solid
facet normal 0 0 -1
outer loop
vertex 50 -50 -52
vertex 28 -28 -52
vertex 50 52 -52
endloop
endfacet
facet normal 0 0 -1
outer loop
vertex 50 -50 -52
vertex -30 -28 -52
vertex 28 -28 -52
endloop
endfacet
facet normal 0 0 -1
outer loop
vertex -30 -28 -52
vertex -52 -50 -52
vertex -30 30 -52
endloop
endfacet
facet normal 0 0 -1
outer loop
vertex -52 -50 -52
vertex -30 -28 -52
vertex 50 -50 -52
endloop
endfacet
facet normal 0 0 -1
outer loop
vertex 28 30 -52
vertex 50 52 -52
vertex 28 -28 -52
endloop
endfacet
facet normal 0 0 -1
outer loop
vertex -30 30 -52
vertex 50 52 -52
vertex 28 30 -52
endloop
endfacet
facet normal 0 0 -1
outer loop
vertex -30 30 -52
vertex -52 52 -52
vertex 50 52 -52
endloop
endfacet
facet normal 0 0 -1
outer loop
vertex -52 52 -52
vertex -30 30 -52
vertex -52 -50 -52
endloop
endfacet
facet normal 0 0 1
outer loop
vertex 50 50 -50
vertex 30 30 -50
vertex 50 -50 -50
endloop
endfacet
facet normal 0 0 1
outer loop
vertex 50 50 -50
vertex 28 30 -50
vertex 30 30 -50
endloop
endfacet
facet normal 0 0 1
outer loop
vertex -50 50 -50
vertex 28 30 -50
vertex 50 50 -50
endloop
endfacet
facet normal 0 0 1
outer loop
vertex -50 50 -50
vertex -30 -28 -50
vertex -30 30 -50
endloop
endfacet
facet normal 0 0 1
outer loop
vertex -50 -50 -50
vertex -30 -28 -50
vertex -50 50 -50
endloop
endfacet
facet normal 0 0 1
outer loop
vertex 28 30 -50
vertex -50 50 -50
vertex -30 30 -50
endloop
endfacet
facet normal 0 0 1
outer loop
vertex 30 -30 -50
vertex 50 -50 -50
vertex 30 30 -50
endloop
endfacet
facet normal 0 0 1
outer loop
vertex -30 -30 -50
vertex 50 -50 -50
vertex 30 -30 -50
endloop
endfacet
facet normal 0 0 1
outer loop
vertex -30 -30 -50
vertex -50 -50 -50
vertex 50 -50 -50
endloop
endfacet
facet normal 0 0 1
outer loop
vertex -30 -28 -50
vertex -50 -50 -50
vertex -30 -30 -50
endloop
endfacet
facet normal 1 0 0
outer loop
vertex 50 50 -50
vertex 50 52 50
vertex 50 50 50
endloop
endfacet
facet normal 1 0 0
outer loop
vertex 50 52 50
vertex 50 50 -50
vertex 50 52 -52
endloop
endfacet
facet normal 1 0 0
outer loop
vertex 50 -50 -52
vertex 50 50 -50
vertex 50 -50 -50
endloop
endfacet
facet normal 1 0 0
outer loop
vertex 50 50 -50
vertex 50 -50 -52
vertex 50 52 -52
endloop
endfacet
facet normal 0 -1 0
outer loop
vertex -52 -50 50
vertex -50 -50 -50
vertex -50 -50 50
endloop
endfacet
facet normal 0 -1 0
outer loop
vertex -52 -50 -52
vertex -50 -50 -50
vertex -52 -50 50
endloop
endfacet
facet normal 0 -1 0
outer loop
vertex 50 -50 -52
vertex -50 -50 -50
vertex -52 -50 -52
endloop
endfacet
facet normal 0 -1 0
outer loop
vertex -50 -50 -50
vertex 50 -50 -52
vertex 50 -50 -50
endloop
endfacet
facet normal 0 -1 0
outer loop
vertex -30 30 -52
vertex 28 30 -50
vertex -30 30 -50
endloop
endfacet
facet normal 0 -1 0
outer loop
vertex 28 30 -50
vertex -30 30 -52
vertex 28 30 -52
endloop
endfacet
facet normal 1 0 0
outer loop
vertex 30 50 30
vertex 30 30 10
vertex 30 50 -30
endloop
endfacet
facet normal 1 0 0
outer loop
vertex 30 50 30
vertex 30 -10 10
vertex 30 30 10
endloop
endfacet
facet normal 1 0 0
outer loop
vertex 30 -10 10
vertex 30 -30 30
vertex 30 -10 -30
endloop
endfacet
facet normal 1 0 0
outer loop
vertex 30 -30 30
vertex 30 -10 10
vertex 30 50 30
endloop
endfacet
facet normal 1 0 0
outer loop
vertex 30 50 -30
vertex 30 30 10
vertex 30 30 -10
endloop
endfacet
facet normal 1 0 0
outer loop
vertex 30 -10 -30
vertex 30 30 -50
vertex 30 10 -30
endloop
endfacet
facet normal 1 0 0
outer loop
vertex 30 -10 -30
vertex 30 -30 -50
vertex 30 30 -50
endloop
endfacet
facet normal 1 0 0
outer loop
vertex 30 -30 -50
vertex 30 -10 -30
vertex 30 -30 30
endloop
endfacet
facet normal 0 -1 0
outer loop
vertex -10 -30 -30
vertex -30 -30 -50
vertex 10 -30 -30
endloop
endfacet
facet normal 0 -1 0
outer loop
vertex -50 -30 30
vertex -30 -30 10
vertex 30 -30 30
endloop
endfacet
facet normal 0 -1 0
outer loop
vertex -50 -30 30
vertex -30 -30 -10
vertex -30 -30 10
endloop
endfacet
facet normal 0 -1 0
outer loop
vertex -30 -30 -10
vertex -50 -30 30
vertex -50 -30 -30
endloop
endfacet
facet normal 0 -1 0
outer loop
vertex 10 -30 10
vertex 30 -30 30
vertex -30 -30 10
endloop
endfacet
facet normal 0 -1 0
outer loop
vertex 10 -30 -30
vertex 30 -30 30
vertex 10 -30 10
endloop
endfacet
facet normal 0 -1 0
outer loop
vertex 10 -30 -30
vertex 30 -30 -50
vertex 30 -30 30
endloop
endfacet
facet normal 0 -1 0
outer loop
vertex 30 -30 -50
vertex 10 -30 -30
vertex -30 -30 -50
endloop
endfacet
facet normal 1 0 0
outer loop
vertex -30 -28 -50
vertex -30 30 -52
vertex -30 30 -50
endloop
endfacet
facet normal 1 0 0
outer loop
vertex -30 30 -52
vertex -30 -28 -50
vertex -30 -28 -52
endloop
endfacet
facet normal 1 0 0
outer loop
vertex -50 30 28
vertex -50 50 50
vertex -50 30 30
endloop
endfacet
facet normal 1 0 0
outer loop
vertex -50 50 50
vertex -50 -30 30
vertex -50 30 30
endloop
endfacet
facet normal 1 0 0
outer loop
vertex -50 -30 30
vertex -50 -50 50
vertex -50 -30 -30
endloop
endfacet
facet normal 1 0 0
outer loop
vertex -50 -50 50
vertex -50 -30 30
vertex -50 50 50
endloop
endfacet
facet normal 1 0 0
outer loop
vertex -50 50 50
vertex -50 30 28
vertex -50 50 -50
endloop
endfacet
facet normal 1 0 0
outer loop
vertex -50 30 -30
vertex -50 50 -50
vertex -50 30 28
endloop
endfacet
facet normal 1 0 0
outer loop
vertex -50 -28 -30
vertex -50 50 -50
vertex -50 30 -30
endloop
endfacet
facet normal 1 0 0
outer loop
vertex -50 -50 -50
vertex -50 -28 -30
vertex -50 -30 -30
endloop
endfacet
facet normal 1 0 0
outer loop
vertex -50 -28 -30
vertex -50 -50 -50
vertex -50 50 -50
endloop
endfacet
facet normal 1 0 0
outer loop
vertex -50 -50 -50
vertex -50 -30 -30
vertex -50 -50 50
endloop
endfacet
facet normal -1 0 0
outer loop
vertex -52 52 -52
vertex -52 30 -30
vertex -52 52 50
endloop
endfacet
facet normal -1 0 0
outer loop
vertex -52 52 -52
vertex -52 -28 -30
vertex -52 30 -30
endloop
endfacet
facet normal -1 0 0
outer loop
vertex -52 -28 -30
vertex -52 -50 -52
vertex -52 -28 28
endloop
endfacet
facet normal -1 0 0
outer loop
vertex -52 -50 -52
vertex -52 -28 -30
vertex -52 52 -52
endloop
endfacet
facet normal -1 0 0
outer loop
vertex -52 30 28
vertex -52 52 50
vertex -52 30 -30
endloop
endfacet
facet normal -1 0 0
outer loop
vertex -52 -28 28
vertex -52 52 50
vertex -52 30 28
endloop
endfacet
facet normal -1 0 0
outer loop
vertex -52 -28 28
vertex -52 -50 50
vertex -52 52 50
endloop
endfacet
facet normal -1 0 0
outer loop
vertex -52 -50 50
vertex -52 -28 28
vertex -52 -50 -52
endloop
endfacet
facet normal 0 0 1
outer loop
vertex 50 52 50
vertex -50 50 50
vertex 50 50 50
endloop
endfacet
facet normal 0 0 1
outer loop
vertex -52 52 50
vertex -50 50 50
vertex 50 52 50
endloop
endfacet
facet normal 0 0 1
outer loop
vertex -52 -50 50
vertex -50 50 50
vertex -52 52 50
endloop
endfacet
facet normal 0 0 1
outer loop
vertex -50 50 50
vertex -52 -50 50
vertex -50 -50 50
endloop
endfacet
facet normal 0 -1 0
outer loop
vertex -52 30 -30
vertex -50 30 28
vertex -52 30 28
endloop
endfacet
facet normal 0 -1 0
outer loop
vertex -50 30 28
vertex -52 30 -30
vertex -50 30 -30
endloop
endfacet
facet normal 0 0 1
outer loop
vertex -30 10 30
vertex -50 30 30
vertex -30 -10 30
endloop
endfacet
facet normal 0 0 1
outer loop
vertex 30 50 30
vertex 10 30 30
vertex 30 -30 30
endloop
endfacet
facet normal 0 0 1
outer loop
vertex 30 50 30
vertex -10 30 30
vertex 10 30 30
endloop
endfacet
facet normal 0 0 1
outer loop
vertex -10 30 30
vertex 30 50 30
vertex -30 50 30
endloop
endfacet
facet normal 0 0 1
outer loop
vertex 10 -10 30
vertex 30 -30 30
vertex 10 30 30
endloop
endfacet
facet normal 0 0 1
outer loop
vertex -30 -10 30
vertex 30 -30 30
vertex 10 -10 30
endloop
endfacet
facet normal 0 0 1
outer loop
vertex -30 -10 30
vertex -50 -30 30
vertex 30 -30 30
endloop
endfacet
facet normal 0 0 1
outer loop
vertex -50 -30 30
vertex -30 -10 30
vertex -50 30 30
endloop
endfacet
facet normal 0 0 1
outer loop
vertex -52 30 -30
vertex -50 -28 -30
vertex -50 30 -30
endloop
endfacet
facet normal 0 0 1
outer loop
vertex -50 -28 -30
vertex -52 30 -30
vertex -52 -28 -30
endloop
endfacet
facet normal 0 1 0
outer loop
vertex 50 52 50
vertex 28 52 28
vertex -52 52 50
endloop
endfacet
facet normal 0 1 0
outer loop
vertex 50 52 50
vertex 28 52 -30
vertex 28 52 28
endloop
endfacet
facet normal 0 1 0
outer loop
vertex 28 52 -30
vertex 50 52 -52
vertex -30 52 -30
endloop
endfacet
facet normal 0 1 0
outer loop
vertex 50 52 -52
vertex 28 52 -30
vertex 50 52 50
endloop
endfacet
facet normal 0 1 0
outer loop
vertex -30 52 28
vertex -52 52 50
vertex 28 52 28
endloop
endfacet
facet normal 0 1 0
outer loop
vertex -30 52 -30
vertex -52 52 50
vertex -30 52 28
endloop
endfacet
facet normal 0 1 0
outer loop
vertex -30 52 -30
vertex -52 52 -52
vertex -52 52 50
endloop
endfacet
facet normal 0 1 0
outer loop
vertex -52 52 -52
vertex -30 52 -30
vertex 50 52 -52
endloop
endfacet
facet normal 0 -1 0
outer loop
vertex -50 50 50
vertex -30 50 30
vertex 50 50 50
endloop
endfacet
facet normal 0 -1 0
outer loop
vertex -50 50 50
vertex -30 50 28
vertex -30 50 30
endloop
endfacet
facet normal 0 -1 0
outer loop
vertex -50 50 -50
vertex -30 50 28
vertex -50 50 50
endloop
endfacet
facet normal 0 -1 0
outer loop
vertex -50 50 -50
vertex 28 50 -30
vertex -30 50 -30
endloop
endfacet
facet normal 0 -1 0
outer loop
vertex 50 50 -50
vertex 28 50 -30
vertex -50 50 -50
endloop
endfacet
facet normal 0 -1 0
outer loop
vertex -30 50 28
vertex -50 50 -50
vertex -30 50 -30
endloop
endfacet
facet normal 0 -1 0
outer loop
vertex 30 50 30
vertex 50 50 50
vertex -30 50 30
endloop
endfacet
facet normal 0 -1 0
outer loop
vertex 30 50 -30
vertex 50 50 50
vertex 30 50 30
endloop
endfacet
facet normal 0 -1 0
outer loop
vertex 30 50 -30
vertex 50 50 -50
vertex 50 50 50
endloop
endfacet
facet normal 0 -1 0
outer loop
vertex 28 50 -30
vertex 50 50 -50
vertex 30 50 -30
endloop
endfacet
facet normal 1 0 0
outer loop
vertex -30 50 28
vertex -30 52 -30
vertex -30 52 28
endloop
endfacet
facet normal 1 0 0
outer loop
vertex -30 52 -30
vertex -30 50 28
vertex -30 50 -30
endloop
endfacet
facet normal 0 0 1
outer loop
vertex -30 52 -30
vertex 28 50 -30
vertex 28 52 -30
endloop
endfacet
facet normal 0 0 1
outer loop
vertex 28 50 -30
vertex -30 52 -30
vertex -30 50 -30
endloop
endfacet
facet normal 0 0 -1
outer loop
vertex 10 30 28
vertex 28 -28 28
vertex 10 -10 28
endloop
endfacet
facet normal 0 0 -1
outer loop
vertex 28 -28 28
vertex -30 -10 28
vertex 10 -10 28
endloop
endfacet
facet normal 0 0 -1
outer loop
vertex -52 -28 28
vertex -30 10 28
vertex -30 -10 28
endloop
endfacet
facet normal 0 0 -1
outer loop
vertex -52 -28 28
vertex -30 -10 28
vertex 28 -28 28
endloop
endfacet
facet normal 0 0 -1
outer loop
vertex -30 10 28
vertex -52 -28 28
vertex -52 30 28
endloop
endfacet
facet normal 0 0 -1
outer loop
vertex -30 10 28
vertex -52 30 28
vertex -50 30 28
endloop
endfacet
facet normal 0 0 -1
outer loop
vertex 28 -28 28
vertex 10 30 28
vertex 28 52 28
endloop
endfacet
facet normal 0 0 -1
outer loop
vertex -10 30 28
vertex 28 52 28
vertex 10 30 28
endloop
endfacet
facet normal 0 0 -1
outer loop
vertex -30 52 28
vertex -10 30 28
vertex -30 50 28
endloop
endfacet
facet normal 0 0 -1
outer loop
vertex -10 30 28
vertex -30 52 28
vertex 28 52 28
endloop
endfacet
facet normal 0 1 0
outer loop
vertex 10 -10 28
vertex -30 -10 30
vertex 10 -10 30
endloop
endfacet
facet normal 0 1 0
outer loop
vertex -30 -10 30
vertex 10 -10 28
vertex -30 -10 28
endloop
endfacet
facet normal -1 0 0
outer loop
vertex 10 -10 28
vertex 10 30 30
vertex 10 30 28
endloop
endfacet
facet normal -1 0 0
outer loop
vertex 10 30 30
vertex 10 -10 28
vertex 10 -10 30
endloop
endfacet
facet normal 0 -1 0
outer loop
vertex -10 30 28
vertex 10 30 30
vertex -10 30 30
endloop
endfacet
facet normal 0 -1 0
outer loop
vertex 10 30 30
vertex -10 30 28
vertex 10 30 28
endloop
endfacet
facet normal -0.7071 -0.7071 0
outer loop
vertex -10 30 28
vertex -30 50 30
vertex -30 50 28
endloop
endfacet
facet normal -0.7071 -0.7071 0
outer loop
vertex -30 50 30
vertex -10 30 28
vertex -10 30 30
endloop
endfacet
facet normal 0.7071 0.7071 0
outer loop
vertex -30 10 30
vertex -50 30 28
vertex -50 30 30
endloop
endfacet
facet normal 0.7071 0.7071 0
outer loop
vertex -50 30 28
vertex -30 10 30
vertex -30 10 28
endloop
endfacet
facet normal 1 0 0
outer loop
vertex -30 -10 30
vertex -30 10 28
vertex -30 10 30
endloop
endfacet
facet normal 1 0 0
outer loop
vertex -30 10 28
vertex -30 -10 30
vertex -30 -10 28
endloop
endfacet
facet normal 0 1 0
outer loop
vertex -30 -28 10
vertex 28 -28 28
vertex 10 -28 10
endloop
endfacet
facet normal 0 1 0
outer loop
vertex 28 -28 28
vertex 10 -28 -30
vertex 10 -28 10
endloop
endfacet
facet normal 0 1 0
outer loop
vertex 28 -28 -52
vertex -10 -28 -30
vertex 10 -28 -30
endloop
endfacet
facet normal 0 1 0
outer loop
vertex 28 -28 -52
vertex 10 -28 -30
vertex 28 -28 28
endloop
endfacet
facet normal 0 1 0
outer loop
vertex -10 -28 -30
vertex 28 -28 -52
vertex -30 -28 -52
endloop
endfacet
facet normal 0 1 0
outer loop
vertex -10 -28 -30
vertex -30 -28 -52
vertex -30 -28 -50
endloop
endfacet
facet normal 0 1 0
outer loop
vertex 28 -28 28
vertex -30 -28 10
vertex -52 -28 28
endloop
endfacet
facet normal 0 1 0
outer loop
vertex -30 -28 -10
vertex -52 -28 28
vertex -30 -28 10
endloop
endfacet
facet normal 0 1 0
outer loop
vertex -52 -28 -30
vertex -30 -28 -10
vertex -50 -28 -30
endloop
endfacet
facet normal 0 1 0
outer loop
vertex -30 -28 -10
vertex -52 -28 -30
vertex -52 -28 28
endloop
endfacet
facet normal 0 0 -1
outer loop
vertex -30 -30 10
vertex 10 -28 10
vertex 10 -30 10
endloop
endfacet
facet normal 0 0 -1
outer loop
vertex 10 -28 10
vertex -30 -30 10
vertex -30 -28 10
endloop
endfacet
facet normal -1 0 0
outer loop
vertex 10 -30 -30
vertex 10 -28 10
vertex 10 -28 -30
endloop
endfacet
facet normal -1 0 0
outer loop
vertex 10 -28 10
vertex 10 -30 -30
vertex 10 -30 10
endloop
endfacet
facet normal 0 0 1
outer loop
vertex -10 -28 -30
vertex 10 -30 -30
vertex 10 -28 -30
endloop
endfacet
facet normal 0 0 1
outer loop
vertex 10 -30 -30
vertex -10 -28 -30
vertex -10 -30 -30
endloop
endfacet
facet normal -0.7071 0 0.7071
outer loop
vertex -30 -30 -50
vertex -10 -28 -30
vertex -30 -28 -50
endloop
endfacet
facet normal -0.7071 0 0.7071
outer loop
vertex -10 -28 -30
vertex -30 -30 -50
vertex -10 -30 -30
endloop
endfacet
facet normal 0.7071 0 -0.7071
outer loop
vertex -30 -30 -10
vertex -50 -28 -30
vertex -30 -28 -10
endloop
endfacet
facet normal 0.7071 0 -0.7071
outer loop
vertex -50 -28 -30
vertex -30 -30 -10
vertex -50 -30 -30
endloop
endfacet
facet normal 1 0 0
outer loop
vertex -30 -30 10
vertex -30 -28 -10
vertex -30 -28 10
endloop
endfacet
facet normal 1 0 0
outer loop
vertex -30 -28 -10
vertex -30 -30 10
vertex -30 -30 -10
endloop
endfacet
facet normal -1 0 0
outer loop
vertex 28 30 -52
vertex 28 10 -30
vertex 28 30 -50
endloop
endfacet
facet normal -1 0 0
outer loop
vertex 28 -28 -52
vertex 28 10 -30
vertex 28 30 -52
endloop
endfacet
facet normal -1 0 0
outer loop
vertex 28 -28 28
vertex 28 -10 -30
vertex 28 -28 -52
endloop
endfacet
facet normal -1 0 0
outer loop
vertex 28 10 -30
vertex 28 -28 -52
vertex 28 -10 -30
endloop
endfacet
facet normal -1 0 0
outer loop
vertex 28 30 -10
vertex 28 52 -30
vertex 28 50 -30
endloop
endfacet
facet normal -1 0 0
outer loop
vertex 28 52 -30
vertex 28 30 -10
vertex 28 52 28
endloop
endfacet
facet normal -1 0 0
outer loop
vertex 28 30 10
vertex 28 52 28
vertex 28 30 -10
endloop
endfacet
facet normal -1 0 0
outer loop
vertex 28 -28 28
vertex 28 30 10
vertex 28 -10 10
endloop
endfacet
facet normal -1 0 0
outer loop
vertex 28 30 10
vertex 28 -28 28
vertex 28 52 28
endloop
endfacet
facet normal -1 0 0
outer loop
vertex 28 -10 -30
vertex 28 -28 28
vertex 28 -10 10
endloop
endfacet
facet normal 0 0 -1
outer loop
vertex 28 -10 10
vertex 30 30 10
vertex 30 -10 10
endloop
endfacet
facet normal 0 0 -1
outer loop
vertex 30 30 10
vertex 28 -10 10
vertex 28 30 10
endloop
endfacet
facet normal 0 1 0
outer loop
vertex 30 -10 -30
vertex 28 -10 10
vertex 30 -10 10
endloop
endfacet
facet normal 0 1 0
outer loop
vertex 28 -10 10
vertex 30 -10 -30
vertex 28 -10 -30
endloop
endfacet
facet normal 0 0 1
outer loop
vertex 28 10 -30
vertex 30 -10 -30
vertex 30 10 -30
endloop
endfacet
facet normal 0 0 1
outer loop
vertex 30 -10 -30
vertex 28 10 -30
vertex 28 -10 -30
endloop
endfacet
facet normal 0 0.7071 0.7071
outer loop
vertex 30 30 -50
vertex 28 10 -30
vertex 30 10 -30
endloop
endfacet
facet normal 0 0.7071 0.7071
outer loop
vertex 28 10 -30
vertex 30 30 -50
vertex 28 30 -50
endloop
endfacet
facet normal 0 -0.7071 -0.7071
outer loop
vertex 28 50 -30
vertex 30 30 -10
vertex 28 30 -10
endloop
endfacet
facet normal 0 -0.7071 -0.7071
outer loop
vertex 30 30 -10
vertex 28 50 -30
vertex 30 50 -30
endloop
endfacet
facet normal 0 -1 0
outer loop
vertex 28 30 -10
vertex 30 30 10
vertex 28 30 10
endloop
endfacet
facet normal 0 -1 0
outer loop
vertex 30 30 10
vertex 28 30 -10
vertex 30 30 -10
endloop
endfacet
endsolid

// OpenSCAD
edgeLen=100;
beamWdth=20;
wallThck=2;

//inEdgeLen=edgeLen-beamWdth*2;

$vpr=[55,0,45];
//big cube
SQCube(edgeLen,beamWdth);

//this could have been better, but it's late and I'm tired
translate([-(edgeLen+wallThck)/2,(edgeLen+wallThck)/2,-(edgeLen+wallThck)/2]) 
  for (ir=[[0,0,0],[0,-90,0],[0,0,-90]])
    rotate(ir) translate([edgeLen/2,0,0]) cube([edgeLen+wallThck,wallThck,wallThck],true);

  
//small cube
translate([-(beamWdth)/2,beamWdth/2,-beamWdth/2]) 
  rotate([180,0,90]) SQCube(edgeLen-beamWdth,beamWdth,true);


module SQCube(size=100,beamWdth=25,open=false){
  inSize=size-beamWdth*2;
  wallOffset= open ? wallThck : -wallThck;
  translate([0,0,-(size-wallOffset)/2]) rotate([0,0,-90])  frame();
  translate([-(size-wallOffset)/2,0,0]) rotate([90,0,-90]) frame();
  translate([0,(size-wallOffset)/2,0])  rotate([90,0,0])   frame();


  module frame(){
    dSize=size*sqrt(2);
    dBeamWdth=beamWdth*sqrt(2);
    
    linear_extrude(height=wallThck,center=true){
      difference(){
        square([size,size],true);
        square([inSize,inSize],true);
        if (open){
          rotate(45) translate([0,-dBeamWdth/2]) square([dSize,dBeamWdth]);
        }
      }
      if (open){
        translate([wallThck/2,(size+wallThck)/2]) square([size+wallThck,wallThck],true);
        translate([(size+wallThck)/2,wallThck/2]) square([wallThck,size+wallThck],true);
      }
    }
  }
}
